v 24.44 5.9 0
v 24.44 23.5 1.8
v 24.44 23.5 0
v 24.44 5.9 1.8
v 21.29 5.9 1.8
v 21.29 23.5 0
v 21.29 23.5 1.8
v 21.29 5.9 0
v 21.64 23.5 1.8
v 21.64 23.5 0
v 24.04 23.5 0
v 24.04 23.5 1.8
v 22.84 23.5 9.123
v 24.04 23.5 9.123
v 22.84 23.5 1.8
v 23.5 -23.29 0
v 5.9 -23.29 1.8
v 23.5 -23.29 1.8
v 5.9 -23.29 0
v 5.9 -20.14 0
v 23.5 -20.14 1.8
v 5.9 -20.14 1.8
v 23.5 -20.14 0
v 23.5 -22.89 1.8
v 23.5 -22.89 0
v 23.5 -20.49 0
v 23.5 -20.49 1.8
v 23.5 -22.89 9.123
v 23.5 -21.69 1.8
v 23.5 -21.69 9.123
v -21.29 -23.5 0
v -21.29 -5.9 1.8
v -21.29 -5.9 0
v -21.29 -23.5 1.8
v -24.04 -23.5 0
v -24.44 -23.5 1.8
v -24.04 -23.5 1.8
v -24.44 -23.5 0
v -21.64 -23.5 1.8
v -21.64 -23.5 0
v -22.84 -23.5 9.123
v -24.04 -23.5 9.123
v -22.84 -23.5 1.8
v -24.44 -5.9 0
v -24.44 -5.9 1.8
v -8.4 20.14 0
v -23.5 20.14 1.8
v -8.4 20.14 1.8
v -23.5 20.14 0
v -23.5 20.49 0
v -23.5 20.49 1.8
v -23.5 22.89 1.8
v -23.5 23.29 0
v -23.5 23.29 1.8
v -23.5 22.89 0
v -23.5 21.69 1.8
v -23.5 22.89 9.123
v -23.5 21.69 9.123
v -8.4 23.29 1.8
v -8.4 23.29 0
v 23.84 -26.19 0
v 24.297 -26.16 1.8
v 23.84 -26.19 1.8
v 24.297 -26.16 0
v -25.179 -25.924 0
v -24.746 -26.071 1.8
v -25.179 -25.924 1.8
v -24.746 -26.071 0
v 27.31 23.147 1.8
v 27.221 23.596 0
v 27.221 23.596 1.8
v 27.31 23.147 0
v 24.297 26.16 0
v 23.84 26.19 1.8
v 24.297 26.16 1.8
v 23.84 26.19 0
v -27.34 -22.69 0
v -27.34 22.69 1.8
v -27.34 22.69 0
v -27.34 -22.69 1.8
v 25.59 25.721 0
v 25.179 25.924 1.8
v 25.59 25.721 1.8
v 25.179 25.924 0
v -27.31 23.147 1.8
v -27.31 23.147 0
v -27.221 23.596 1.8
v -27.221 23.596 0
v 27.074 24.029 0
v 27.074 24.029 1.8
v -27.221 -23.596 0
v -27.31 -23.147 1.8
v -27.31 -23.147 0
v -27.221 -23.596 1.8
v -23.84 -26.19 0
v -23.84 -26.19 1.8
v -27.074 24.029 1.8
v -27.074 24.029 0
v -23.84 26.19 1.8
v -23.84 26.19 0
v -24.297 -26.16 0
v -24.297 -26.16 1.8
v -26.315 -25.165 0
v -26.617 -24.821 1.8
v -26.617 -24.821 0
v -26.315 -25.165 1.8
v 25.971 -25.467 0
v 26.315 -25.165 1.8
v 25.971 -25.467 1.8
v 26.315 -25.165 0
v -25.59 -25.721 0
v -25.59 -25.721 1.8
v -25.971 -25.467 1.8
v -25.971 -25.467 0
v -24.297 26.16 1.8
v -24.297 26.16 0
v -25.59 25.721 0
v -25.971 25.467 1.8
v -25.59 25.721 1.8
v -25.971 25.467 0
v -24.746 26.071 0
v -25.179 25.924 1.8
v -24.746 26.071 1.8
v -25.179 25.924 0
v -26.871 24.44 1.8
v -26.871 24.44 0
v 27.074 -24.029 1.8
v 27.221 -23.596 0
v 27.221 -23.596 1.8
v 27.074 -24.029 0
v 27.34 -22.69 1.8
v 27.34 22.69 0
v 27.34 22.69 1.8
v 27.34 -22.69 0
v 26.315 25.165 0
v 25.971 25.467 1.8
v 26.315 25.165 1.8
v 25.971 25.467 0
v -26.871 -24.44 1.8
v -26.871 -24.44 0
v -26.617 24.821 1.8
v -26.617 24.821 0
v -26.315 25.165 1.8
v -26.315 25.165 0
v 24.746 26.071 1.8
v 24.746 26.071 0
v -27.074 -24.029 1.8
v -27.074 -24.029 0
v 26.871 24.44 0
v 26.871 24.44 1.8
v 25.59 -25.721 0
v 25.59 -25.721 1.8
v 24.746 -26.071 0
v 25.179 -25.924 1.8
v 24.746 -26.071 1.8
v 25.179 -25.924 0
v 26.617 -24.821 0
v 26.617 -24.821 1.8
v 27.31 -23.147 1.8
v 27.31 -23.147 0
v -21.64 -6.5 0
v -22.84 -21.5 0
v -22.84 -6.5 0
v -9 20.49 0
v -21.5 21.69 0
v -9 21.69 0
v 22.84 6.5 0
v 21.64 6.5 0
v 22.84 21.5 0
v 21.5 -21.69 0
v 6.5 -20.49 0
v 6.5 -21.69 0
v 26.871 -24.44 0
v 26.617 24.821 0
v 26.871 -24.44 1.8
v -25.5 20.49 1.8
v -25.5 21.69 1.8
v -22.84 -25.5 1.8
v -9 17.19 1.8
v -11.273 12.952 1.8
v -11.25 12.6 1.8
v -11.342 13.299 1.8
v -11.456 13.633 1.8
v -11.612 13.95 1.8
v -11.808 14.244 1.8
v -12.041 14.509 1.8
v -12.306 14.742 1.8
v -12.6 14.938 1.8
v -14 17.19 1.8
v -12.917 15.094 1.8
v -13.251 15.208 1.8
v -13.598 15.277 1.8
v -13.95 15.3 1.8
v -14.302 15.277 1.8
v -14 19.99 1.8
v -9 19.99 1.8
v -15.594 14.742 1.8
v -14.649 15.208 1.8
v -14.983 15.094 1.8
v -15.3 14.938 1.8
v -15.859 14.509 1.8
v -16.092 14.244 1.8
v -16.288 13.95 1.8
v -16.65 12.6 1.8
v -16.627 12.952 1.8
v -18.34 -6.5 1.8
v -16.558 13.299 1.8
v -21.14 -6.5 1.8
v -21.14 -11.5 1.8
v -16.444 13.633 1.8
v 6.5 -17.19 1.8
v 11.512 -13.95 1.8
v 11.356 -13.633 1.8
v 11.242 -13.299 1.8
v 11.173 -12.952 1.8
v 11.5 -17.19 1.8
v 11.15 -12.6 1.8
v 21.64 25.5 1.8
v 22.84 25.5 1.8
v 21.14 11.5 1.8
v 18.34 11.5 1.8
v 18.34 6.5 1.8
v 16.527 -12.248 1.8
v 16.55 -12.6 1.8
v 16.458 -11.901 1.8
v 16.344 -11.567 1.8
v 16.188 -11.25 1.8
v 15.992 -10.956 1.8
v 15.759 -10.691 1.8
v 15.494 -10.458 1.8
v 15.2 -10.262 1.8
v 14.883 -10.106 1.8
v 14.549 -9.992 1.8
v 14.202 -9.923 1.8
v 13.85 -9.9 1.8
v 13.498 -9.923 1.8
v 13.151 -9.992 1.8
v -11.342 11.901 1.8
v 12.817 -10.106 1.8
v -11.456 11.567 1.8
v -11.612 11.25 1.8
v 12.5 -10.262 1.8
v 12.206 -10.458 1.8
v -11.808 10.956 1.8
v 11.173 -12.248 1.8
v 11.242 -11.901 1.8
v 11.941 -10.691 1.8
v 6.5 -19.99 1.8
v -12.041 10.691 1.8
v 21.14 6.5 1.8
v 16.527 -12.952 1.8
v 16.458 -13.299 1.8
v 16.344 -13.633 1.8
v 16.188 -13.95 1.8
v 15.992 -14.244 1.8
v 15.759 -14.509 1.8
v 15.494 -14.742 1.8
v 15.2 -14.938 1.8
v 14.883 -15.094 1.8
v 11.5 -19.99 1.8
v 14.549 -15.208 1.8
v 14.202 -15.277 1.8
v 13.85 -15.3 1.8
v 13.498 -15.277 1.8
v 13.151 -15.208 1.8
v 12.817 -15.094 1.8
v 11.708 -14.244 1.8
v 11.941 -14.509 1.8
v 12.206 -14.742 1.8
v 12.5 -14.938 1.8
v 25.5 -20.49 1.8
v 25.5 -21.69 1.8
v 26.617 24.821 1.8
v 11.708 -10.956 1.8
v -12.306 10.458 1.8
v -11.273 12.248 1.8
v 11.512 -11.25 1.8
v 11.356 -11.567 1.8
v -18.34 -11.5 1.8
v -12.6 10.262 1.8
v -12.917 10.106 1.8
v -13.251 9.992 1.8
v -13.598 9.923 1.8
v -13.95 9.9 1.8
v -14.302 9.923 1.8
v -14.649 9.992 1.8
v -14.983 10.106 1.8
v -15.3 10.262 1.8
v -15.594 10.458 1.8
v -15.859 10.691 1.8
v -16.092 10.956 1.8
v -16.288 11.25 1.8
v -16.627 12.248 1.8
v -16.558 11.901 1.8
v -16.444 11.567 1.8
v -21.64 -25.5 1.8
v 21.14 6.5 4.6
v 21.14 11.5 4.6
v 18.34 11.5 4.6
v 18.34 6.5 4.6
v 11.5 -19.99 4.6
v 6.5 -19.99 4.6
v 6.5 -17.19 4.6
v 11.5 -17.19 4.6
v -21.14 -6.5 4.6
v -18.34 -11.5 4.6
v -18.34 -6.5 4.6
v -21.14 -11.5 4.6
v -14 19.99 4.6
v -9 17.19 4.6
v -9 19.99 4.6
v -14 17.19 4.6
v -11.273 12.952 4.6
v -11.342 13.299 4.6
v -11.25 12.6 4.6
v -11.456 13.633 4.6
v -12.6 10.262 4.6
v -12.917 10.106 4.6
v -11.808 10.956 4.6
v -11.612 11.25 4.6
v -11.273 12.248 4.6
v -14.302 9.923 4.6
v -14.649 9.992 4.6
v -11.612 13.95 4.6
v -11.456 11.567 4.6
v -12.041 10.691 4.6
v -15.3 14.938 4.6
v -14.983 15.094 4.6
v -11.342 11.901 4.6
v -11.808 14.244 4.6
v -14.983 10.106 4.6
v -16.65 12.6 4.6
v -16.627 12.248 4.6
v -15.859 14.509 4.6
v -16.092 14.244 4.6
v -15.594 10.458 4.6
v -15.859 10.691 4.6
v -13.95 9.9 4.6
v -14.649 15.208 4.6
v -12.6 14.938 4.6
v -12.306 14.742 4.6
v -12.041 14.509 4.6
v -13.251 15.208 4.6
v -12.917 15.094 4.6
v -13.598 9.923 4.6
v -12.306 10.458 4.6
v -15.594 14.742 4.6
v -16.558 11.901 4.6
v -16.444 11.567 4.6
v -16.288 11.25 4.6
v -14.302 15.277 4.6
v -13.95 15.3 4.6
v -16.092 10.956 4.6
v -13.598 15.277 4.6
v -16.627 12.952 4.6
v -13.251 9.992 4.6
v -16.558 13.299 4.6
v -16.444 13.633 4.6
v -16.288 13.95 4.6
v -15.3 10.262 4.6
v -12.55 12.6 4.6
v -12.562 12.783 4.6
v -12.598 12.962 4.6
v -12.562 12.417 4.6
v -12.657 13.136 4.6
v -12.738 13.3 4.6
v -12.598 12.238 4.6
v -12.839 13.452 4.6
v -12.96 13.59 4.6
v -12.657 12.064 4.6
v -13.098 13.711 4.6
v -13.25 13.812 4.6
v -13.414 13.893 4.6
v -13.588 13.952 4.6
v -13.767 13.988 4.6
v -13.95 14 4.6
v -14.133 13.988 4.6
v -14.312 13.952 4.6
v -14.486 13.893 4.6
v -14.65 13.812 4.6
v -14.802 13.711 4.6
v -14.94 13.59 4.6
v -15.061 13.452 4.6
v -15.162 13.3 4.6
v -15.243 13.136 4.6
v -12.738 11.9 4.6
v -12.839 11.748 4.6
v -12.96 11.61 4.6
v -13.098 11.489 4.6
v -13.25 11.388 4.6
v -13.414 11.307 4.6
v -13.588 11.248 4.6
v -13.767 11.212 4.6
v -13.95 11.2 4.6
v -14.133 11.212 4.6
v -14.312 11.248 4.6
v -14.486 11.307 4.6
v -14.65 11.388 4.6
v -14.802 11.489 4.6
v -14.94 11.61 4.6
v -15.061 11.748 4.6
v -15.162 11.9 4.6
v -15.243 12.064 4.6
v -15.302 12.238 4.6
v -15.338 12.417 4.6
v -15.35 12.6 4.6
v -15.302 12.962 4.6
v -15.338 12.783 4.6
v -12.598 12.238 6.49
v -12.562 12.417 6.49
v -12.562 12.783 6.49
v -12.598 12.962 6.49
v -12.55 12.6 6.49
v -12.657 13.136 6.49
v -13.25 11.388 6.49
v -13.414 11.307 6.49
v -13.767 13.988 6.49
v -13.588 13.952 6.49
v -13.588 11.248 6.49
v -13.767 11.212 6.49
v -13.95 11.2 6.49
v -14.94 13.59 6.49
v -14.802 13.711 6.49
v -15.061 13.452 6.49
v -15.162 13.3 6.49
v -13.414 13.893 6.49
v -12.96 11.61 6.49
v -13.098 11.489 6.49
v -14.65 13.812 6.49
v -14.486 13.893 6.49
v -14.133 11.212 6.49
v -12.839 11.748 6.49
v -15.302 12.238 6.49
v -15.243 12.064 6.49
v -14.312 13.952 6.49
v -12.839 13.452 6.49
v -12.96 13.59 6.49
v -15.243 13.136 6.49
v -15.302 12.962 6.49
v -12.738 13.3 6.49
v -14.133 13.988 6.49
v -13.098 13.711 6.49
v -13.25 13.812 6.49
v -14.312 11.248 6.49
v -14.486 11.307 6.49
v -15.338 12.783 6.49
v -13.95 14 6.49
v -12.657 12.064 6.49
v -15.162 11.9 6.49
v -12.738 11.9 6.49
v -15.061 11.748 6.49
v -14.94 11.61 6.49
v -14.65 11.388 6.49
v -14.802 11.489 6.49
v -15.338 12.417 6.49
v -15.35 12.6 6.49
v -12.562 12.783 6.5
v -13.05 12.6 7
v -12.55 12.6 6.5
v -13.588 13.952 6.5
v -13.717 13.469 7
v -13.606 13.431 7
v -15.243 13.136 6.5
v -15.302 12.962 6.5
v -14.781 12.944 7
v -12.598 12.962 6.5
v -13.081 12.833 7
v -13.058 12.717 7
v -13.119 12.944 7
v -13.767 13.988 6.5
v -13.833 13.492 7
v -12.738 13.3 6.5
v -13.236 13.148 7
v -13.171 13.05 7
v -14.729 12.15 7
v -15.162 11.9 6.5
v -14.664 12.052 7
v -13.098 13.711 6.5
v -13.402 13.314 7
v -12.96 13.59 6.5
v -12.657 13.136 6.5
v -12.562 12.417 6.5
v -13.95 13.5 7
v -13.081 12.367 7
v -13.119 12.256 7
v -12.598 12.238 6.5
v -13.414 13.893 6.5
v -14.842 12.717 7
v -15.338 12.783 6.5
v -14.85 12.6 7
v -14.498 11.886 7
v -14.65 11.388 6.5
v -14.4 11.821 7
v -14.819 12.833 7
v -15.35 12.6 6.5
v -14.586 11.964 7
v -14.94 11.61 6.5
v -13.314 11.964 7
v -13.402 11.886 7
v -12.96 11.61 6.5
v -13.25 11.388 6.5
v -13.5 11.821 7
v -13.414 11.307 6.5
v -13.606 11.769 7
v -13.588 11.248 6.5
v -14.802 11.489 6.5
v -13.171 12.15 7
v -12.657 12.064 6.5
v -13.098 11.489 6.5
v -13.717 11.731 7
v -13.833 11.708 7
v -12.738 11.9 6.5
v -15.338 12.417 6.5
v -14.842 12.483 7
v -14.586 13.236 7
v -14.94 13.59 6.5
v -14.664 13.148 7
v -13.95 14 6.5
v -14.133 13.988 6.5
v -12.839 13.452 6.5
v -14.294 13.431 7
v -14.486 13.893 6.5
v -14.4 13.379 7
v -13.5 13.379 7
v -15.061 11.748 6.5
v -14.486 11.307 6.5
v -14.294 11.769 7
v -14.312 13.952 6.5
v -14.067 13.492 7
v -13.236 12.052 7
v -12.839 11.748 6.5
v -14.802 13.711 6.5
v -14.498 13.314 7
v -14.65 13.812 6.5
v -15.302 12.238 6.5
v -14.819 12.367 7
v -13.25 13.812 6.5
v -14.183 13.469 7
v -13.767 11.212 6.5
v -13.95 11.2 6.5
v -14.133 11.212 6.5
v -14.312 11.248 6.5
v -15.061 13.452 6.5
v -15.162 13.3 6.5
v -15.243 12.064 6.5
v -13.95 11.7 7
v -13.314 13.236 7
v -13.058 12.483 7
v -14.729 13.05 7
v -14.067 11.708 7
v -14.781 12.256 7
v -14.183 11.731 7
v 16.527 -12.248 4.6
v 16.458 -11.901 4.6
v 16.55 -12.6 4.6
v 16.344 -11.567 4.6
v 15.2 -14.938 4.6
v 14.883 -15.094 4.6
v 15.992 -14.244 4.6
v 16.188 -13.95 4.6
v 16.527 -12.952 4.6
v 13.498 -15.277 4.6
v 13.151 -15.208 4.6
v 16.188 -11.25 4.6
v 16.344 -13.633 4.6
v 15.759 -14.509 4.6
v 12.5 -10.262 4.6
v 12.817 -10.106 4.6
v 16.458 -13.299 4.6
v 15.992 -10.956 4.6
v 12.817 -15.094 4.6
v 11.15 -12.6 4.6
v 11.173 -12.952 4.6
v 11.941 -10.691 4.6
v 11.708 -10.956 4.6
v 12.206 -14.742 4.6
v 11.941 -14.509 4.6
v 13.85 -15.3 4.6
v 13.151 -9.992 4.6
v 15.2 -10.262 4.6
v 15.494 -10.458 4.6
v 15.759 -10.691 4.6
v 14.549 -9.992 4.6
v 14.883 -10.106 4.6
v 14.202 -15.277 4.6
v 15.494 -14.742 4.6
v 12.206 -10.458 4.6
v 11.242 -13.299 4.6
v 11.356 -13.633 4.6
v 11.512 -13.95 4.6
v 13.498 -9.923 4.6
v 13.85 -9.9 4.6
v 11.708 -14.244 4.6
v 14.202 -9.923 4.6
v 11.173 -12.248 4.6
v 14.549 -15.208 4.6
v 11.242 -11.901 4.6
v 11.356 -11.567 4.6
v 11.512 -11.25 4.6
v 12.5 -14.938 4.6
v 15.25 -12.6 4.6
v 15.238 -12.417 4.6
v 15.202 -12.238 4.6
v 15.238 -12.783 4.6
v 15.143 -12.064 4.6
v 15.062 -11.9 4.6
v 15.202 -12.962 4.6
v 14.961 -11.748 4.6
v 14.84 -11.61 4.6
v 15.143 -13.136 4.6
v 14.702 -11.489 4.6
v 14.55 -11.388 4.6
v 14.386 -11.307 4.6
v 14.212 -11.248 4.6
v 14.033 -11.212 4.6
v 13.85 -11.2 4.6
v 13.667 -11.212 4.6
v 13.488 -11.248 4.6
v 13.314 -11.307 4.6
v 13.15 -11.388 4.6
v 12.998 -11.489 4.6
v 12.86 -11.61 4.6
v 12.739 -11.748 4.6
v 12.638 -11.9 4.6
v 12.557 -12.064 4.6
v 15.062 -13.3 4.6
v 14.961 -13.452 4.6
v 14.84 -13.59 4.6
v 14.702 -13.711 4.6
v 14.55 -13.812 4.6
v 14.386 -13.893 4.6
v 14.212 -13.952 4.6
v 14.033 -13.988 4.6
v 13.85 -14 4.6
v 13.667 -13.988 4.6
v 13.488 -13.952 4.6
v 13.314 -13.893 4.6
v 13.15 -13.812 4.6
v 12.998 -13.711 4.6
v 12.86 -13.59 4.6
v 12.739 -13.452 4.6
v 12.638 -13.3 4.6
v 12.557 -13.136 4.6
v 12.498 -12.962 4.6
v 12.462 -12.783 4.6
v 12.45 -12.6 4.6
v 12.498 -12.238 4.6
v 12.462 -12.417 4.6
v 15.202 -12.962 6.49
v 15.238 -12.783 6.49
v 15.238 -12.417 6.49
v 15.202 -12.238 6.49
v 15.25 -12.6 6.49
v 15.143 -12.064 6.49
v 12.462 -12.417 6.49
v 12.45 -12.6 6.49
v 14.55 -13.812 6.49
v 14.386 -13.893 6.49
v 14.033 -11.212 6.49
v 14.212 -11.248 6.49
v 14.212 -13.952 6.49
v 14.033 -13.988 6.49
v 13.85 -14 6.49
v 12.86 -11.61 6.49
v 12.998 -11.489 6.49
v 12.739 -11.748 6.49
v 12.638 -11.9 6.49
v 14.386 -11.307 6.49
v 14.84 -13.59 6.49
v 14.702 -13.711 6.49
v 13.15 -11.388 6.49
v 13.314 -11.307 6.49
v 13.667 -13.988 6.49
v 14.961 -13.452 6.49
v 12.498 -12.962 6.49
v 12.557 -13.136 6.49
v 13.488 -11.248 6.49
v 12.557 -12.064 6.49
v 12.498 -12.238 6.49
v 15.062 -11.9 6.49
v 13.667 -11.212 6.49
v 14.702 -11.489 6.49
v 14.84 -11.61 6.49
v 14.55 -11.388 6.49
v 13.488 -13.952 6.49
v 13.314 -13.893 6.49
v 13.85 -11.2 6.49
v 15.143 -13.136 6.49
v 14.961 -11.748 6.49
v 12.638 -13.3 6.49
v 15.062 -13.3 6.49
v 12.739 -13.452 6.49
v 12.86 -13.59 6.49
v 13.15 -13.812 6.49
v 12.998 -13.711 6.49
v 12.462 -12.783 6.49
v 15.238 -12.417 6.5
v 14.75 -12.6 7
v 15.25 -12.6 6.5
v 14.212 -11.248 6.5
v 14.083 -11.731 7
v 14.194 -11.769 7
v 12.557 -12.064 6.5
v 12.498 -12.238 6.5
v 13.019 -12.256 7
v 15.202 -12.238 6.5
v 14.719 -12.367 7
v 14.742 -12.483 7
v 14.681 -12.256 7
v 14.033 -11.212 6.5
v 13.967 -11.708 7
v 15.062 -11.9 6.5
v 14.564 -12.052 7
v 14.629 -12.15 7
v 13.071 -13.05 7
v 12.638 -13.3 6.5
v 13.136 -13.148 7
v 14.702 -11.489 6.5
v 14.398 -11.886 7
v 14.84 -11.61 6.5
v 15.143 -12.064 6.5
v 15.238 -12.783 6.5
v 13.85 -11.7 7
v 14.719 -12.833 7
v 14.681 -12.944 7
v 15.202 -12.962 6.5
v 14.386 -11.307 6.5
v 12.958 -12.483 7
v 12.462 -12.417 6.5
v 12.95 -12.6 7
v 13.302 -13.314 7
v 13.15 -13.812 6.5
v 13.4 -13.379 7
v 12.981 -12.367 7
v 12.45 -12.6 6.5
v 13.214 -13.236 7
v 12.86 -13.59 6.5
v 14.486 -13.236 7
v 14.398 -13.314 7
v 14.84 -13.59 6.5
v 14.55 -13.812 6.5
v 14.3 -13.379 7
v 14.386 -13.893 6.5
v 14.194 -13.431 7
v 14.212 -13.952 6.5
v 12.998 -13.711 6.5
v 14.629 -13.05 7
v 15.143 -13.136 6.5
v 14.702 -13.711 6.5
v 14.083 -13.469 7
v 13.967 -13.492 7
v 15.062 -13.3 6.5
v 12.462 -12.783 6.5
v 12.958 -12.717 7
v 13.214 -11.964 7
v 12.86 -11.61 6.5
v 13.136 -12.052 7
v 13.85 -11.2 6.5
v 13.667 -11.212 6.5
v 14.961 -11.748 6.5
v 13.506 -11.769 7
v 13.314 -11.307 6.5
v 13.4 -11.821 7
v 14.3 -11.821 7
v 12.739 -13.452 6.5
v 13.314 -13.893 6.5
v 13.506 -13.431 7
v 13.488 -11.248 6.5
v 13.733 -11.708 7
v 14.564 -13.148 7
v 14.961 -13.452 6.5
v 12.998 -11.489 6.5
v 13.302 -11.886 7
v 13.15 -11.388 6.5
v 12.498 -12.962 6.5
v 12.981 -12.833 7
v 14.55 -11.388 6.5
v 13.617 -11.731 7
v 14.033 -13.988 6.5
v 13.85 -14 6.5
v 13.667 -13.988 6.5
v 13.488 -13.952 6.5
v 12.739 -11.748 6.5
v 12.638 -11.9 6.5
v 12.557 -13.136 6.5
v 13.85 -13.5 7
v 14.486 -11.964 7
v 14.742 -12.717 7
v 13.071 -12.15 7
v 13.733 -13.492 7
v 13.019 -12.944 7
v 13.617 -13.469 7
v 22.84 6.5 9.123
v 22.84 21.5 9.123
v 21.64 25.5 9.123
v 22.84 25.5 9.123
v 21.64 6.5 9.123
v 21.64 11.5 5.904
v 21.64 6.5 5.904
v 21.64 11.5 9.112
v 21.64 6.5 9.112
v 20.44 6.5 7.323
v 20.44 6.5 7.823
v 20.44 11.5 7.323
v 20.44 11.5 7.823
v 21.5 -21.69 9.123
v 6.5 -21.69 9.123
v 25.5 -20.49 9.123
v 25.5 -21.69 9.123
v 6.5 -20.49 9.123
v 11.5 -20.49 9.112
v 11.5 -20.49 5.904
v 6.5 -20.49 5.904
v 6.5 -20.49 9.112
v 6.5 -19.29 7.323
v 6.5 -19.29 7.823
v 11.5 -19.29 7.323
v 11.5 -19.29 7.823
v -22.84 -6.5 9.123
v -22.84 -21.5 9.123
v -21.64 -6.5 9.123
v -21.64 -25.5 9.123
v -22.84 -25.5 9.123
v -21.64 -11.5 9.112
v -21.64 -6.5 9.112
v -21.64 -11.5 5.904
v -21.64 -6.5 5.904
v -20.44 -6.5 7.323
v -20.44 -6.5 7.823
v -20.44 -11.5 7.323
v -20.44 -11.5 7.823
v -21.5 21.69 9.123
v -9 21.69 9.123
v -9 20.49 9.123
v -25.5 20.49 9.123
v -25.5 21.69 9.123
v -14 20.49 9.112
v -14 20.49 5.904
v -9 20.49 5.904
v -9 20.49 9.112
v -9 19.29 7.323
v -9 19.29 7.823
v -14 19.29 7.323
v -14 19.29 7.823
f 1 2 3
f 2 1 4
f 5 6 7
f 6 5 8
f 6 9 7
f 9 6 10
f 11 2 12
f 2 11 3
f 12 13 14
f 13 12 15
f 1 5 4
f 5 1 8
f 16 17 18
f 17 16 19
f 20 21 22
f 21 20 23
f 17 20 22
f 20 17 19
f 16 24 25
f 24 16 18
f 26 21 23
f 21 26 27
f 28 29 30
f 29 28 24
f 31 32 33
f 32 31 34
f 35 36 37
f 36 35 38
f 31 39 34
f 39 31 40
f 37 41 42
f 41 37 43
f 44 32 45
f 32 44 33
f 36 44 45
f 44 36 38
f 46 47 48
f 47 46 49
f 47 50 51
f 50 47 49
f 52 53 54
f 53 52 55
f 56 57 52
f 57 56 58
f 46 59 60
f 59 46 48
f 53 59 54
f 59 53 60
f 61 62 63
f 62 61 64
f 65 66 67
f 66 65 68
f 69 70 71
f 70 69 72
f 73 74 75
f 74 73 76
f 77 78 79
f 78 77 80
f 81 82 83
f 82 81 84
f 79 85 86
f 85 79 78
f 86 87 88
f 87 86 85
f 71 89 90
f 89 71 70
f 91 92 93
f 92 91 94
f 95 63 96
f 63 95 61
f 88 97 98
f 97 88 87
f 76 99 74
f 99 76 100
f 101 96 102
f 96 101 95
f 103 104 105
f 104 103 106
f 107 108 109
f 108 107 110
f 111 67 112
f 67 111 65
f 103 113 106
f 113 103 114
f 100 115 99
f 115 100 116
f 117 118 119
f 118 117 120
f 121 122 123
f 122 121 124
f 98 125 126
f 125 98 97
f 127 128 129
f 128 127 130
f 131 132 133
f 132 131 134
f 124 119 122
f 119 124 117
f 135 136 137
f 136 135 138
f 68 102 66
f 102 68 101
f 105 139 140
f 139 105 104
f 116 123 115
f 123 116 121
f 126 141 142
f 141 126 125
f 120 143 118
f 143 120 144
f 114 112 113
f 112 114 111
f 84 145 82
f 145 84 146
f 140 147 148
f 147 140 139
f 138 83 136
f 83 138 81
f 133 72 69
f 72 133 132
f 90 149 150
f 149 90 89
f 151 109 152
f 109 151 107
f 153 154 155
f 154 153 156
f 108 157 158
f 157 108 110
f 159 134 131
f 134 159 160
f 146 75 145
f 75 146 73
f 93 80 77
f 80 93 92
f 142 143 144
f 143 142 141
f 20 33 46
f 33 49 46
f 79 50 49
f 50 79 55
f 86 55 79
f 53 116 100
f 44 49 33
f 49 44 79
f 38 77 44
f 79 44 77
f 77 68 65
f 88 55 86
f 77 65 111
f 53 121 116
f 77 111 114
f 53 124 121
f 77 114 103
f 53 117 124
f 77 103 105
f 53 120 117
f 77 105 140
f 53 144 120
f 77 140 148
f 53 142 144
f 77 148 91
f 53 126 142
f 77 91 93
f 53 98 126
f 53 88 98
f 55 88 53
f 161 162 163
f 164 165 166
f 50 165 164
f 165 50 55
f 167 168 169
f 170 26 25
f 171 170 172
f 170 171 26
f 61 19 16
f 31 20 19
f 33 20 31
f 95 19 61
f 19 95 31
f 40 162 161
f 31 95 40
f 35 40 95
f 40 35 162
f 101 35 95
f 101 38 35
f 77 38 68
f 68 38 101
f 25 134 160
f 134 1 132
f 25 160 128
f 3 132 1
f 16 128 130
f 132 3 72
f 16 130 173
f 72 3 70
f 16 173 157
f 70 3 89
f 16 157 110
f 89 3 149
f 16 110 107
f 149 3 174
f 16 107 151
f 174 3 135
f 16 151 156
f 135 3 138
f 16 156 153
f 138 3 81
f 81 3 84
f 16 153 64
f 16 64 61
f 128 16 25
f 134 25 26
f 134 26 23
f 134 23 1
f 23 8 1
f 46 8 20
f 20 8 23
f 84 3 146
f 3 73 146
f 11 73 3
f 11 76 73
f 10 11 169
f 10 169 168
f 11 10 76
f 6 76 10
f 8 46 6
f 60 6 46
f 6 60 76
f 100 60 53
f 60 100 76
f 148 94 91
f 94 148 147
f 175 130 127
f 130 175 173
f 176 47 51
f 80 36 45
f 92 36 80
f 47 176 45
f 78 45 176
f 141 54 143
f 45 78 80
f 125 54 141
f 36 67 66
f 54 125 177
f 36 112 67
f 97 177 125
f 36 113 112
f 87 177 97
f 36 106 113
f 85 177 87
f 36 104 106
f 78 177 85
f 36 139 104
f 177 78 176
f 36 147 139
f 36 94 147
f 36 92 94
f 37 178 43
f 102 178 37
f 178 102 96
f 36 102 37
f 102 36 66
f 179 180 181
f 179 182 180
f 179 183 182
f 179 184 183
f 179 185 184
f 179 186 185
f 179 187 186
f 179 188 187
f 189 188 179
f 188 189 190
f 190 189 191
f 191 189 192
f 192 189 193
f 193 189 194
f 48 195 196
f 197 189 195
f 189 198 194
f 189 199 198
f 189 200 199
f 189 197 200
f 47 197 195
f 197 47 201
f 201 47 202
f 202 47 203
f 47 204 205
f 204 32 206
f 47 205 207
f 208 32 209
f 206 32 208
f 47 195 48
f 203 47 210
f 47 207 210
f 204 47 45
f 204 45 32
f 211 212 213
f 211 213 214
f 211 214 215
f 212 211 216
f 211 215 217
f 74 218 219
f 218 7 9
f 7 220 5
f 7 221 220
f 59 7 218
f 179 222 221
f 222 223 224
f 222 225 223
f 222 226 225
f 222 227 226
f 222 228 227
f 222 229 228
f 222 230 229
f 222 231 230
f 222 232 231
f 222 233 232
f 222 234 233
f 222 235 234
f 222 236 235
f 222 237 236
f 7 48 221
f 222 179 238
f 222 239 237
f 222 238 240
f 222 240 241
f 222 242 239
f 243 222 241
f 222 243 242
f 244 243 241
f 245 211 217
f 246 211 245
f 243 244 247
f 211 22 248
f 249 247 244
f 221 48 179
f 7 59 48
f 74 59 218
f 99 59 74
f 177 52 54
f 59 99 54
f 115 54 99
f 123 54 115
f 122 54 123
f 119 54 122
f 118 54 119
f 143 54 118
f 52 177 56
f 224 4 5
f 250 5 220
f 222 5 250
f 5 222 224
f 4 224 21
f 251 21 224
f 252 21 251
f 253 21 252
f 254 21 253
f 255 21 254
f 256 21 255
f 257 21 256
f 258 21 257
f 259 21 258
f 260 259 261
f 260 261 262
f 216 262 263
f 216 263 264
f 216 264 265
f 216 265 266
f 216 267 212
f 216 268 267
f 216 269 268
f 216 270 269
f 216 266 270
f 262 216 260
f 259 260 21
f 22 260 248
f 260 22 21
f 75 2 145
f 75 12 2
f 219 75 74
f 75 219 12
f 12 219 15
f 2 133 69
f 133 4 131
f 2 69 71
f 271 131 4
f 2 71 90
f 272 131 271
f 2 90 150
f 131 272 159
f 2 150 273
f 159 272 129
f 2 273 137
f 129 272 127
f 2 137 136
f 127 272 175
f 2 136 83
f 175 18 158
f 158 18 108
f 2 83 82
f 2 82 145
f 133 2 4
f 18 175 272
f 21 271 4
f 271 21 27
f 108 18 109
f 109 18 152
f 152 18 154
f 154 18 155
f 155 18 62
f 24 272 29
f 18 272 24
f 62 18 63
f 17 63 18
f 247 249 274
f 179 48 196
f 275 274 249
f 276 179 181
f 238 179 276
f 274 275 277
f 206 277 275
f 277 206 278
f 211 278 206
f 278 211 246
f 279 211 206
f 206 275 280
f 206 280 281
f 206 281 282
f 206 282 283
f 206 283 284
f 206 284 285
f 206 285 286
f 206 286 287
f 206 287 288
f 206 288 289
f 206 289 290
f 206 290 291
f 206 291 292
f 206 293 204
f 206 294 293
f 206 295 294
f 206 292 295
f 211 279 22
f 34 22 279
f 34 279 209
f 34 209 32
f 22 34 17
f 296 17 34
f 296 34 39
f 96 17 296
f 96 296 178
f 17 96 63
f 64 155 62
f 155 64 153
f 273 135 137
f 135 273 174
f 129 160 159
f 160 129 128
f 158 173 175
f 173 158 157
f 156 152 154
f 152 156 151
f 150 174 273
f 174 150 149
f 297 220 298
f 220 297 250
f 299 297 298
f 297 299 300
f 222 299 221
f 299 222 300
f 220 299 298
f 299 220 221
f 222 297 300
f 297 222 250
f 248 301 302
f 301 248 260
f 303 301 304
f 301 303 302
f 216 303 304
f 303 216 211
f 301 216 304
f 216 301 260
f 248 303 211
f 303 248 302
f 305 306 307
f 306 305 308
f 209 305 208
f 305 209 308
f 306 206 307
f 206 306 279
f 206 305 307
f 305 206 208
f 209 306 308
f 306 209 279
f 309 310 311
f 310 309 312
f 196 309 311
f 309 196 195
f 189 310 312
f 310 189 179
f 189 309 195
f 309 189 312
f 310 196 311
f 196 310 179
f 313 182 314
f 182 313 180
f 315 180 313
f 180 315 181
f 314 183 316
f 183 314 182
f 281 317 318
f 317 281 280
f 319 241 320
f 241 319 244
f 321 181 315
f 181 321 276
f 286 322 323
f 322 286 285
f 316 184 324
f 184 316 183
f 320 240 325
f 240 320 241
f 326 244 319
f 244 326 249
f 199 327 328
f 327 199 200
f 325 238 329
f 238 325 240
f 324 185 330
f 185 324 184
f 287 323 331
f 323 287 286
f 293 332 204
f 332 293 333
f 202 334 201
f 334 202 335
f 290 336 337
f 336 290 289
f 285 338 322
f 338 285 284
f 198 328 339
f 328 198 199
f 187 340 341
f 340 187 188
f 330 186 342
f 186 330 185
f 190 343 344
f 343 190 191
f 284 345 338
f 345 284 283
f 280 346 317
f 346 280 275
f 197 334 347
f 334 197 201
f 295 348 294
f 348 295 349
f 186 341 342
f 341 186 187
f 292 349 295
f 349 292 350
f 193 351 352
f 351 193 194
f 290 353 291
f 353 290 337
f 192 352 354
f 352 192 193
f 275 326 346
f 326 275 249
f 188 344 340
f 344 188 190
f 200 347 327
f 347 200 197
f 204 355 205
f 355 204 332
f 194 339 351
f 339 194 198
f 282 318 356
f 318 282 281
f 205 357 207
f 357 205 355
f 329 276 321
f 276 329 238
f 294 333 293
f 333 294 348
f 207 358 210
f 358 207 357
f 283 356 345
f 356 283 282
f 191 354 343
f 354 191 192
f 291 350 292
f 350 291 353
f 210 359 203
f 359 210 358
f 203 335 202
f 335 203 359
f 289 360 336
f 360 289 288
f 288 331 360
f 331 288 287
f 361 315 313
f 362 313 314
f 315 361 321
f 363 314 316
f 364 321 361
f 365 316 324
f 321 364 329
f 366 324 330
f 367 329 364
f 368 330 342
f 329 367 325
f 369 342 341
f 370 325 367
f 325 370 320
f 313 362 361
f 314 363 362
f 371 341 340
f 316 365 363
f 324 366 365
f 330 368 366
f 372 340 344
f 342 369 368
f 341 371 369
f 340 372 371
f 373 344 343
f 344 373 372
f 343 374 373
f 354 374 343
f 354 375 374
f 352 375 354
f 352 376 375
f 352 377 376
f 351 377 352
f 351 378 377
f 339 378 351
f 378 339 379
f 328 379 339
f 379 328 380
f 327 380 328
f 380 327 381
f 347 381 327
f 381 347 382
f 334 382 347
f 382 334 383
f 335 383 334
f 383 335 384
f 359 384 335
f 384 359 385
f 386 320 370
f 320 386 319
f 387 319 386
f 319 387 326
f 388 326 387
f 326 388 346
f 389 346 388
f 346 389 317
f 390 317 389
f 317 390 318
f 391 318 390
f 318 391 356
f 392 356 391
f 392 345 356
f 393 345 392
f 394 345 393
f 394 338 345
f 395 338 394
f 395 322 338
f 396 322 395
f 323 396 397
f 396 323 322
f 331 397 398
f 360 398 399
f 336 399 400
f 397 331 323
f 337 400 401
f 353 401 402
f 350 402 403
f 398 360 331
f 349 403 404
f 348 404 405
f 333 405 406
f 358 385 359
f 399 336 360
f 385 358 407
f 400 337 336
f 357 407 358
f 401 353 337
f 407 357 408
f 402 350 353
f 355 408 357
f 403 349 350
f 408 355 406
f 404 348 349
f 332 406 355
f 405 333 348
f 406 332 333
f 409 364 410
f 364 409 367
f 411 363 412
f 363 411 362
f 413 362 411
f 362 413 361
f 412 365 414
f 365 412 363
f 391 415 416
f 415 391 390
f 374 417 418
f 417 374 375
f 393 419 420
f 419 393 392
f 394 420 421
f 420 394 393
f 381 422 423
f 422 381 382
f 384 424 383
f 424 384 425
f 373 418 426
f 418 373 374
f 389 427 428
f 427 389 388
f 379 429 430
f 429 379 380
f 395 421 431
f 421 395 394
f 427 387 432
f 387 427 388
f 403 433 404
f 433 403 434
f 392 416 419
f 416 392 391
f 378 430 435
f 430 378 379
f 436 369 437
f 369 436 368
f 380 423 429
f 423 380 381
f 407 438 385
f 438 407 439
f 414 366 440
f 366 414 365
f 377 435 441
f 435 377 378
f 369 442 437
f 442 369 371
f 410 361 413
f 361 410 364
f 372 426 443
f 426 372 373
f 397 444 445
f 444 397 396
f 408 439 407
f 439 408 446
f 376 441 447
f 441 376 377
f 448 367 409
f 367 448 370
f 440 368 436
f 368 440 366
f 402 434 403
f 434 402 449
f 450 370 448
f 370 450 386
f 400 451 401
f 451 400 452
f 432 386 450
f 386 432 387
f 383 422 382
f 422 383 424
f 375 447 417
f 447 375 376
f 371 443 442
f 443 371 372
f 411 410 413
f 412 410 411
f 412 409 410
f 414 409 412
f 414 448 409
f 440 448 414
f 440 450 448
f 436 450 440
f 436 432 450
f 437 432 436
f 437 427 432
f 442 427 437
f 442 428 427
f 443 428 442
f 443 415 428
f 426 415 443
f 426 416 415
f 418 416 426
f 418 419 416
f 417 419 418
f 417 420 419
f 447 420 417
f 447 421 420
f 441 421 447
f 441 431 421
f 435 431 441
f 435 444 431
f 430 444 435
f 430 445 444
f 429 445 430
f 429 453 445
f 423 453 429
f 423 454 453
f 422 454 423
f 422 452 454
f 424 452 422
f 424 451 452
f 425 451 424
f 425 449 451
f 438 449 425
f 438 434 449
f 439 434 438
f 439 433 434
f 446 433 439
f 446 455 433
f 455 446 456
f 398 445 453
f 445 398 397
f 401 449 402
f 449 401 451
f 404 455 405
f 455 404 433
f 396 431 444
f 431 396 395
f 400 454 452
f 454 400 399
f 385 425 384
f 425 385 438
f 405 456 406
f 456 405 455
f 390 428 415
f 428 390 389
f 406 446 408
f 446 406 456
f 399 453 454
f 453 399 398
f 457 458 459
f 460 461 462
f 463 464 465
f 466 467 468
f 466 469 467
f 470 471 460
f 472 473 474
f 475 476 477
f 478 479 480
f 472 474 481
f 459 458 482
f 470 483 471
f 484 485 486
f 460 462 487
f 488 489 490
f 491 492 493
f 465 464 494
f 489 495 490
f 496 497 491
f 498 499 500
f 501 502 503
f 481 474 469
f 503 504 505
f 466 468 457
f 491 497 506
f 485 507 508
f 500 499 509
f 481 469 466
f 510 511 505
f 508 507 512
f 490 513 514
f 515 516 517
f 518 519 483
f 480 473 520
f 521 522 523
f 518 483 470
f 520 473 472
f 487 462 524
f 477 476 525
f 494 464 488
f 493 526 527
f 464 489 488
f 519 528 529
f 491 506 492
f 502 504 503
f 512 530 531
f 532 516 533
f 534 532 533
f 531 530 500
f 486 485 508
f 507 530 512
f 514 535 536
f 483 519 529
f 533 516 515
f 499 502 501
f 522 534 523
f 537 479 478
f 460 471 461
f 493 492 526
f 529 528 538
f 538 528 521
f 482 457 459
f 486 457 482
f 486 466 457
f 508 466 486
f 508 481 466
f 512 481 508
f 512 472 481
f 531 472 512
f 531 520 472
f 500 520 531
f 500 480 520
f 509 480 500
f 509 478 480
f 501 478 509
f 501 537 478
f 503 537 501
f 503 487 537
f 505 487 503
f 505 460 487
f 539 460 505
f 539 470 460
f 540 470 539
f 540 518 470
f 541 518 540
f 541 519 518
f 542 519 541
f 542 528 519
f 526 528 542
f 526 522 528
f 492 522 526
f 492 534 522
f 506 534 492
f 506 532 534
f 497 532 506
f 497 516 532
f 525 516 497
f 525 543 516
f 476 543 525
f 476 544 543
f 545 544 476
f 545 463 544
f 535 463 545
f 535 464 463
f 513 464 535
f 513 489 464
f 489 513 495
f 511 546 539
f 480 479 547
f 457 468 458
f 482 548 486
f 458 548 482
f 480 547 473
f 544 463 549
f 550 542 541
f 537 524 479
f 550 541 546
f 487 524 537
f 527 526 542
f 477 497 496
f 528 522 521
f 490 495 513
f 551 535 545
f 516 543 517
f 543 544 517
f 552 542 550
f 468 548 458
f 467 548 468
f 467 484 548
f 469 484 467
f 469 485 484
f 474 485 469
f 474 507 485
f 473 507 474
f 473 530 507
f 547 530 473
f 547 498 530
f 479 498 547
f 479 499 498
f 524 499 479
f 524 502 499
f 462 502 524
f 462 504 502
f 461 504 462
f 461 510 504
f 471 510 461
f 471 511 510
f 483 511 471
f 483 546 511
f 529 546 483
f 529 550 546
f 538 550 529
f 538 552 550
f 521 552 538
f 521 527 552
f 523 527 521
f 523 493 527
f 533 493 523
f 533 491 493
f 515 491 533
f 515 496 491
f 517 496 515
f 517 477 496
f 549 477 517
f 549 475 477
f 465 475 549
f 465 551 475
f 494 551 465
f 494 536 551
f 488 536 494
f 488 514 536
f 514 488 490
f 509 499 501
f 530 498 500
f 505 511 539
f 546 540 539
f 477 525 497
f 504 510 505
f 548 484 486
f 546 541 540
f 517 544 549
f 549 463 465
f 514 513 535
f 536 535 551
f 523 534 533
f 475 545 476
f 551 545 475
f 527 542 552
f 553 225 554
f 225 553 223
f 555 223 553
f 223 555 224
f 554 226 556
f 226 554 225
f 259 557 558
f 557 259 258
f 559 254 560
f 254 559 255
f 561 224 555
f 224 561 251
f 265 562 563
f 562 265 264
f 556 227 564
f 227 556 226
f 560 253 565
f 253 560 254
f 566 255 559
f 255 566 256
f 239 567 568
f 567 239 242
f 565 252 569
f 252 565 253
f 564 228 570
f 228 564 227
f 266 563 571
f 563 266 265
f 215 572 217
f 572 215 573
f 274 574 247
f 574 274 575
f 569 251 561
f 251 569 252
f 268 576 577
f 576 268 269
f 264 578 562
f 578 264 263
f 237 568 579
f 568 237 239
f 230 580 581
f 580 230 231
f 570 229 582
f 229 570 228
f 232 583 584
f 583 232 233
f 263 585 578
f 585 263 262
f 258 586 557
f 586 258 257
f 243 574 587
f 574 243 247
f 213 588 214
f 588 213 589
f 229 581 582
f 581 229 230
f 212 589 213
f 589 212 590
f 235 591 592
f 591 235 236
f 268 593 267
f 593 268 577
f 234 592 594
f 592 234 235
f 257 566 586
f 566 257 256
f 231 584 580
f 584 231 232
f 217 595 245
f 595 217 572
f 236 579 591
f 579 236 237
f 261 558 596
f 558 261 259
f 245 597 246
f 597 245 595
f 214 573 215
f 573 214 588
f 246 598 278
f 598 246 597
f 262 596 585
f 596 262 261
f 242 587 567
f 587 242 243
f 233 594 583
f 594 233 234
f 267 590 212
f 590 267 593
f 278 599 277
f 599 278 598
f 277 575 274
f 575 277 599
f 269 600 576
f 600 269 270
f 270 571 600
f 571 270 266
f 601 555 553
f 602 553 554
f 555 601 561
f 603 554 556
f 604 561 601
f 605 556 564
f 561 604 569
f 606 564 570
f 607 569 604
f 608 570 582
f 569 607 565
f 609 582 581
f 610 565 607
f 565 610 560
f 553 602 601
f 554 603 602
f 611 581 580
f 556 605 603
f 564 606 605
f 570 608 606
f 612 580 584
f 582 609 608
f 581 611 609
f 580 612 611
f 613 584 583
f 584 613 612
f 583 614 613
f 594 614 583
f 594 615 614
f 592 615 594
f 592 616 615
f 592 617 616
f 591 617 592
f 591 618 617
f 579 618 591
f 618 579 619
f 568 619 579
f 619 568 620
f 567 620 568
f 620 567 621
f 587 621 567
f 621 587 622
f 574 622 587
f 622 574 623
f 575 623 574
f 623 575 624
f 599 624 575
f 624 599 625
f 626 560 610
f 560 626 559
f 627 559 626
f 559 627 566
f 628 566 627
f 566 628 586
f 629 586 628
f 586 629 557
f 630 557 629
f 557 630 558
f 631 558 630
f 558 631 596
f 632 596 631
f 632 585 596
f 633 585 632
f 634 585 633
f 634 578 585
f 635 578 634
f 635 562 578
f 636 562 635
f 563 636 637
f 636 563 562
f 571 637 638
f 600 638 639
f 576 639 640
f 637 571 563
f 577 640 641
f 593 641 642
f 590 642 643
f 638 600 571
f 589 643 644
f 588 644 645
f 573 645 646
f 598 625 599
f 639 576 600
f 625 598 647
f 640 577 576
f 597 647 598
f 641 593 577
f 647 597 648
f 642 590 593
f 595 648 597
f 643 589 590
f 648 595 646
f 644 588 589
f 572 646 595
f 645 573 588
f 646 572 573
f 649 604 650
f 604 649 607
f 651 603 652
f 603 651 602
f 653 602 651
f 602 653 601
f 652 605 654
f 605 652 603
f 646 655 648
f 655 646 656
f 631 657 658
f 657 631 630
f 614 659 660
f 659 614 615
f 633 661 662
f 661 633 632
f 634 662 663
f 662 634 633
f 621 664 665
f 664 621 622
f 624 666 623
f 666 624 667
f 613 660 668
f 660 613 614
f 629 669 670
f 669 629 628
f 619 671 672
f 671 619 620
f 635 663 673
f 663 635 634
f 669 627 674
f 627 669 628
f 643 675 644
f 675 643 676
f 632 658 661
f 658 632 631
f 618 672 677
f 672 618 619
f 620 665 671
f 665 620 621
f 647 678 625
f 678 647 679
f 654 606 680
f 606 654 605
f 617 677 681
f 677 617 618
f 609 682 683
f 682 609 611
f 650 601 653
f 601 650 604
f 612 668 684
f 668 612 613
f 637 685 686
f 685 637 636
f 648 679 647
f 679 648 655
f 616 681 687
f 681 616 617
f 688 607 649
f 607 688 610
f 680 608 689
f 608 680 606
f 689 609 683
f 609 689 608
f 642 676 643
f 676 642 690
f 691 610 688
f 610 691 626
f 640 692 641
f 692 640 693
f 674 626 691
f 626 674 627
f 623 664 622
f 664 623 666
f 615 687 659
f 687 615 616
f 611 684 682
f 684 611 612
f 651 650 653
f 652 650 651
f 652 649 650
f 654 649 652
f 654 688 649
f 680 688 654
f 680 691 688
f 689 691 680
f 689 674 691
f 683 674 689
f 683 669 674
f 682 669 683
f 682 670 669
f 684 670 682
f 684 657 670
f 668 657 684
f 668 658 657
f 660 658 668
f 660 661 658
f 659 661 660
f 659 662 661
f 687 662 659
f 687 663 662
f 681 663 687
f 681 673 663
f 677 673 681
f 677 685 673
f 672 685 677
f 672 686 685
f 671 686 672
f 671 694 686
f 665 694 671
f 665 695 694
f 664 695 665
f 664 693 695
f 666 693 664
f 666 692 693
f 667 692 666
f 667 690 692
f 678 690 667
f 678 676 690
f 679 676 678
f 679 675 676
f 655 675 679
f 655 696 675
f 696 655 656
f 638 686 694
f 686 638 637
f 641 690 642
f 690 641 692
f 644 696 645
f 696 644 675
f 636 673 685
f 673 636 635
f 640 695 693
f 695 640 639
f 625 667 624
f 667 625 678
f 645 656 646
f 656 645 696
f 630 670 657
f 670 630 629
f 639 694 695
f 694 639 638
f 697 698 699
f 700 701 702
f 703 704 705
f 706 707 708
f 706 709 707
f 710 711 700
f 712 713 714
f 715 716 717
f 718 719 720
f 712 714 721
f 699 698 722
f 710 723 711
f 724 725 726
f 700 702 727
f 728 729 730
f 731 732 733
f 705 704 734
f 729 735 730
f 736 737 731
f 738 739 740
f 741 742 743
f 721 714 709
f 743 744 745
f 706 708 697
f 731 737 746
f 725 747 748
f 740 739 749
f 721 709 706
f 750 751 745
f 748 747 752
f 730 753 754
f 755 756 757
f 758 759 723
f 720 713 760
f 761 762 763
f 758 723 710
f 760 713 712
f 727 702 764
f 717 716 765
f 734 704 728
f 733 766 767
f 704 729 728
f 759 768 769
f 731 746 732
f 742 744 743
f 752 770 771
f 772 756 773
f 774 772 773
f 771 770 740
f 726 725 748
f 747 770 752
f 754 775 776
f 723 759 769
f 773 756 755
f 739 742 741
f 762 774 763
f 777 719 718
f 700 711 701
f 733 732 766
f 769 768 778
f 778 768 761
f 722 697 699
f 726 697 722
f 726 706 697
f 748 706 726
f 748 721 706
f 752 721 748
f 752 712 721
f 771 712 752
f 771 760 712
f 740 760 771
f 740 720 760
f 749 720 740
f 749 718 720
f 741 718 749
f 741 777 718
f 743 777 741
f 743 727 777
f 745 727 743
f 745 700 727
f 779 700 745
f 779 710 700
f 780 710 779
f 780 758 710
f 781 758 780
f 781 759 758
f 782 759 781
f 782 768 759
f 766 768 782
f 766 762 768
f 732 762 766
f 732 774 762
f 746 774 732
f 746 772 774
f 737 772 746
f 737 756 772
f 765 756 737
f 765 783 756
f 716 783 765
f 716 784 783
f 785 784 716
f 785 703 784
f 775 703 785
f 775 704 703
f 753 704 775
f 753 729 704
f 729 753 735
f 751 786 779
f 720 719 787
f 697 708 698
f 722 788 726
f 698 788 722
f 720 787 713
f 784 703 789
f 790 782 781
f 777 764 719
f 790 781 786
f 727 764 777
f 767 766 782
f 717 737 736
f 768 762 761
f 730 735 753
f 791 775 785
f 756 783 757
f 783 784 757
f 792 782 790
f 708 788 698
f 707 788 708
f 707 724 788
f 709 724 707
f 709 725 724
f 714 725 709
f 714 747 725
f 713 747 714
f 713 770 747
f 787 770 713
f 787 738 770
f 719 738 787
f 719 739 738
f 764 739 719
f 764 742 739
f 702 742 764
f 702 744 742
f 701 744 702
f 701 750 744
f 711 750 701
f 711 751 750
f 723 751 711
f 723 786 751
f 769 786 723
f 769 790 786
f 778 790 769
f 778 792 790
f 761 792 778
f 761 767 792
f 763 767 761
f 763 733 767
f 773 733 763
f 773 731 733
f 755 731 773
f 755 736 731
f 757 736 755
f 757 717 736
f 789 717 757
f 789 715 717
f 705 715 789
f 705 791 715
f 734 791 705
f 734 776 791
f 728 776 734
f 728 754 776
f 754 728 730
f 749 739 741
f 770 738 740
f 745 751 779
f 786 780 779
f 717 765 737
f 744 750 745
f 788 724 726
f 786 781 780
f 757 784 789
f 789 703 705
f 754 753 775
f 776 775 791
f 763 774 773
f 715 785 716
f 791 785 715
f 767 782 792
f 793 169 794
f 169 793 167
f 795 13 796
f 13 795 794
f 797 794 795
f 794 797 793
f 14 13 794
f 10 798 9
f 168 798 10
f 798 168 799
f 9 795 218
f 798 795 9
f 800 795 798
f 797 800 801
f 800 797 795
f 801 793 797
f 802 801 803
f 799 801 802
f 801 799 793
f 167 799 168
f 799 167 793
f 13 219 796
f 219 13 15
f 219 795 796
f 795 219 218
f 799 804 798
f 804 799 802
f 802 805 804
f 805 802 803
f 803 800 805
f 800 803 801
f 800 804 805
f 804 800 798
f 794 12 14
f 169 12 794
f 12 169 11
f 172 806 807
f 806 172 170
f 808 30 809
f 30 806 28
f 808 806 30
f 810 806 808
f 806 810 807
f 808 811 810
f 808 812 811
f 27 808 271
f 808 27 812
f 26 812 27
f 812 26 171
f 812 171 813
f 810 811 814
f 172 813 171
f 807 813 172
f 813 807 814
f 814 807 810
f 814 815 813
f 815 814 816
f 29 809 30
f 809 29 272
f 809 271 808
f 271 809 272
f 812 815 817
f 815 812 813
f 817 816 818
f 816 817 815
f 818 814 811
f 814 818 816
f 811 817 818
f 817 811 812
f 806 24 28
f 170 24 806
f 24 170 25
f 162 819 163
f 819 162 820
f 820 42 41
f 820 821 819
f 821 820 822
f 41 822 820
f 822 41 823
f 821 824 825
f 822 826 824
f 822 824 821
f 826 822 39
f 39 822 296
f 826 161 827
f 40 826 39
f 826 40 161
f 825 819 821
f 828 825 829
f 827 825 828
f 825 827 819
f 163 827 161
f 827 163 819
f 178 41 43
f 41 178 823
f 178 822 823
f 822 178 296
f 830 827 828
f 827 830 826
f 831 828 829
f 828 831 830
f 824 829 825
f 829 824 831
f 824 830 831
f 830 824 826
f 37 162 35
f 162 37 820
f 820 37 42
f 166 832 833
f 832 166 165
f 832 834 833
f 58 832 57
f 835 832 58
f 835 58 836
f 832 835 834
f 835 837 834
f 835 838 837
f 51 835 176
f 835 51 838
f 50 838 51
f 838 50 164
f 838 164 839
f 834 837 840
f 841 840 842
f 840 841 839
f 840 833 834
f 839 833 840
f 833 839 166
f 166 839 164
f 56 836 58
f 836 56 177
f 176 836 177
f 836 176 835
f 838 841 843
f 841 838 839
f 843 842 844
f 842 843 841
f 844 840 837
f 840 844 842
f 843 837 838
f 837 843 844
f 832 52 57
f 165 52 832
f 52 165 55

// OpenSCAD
// Snap-fit holder plate for Elechouse PN532 V4
// Board centred at origin, X right, Y up (8-pin header on +Y, 4-pin header on -X),
// component side up. Plate bottom (z=0) is glued to plywood.
// Print flat, glued face down, PETG recommended, 0.2 mm layers, no supports.

T      = 1.5;      // PCB thickness (measure yours!)
BW     = 42.68;    // board width  (X)
BH     = 40.38;    // board height (Y)
HOLES  = [[-13.95, 12.6], [13.85, -12.6]];
PEG_D  = 2.8;      // peg diameter (hole is 3.05)

BASE   = 1.8;      // plate thickness
PAD_H  = 2.8;      // board stands this high above plate (room for solder tails)
MARGIN = 6.0;      // plate margin around board
G      = 0.30;     // gap finger face <-> board edge
WALL   = 1.2;      // finger thickness (flex direction)
LIP    = 1.2;      // lip reach from finger face -> overlap = LIP-G = 0.9 mm
CLR    = 0.15;     // lip underside clearance above board
FRONT  = 0.5;      // flat front face of the lip tip
UND_ANG= 50;       // lip underside slope (deg from horizontal), rises toward the TIP -> no support needed
RISE   = 1.3;      // lead-in chamfer height
HOOK_L = 5.0;      // lip length along edge
SLOT_O = 1.6;      // flex room outside finger
S_SLOT = 23.5;     // slot end (flex root)
S_END  = 25.5;     // finger end (fixed into plate)
LIFT   = 0;        // fingers print straight up from the bed (keep glue out of the slots!)
$fn = 48;

W2 = BW/2;  H2 = BH/2;
Z_B   = BASE + PAD_H;
Z_T   = Z_B + T;
Z_W    = Z_T + CLR - G*tan(UND_ANG);   // underside height at finger face (lowest point of lip)
Z_TIPB = Z_W + LIP*tan(UND_ANG);       // underside height at lip tip
Z_TOP  = Z_TIPB + FRONT + RISE;
PEG_TOP = Z_T + 0.9;

// [name, rotation, translation, s_tip]
EDGES = [ [0,   [ W2, 0 ], 6.5],    // right
          [-90, [ 0, -H2], 6.5],    // bottom
          [180, [-W2, 0 ], 6.5],    // left
          [90,  [ 0,  H2], 9.0] ];  // top (shifted: keeps clear of 8-pin plug)

// Local frame: n = outward from board edge (x), s = along edge (y)
module edge_frame(e) { translate(e[1]) rotate([0,0,e[0]]) children(); }

module box(n0,n1,s0,s1,z0,z1) { translate([n0,s0,z0]) cube([n1-n0,s1-s0,z1-z0]); }

module finger(st) {
    // flexing wall + fixed end
    box(G, G+WALL, st, S_SLOT, LIFT, Z_TOP);
    box(G, G+WALL, S_SLOT-0.01, S_END, 0, Z_TOP);
    // lip with flat underside and lead-in chamfer
    translate([0, st+HOOK_L, 0]) rotate([90,0,0]) linear_extrude(HOOK_L)
        polygon([[G+0.01, Z_W], [G-LIP, Z_TIPB], [G-LIP, Z_TIPB+FRONT], [G+0.01, Z_TOP]]);
    // root fillet
    linear_extrude(Z_TOP)
        polygon([[G+WALL, S_SLOT-2.0], [G+WALL+1.2, S_SLOT], [G+WALL, S_SLOT]]);
}

module plate_base() {
    difference() {
        linear_extrude(BASE)
            offset(r=3.5) square([BW+2*MARGIN-7, BH+2*MARGIN-7], center=true);
        for (e = EDGES) edge_frame(e)
            box(-0.05, G+WALL+SLOT_O, e[2]-0.6, S_SLOT, -1, BASE+1);
    }
}

union() {
    plate_base();
    // support pads under the board edge at each lip
    for (e = EDGES) edge_frame(e) box(-3.0, -0.2, e[2], e[2]+HOOK_L, BASE-0.01, Z_B);
    // rings + pegs at the mounting holes
    for (h = HOLES) translate([h[0], h[1], 0]) {
        translate([0,0,BASE-0.01]) cylinder(r=2.7, h=PAD_H+0.01);
        translate([0,0,Z_B-0.01]) cylinder(d=PEG_D, h=PEG_TOP-Z_B-0.5);
        translate([0,0,PEG_TOP-0.5]) cylinder(d1=PEG_D, d2=PEG_D-1.0, h=0.5);
    }
    // snap fingers
    for (e = EDGES) edge_frame(e) finger(e[2]);
}
